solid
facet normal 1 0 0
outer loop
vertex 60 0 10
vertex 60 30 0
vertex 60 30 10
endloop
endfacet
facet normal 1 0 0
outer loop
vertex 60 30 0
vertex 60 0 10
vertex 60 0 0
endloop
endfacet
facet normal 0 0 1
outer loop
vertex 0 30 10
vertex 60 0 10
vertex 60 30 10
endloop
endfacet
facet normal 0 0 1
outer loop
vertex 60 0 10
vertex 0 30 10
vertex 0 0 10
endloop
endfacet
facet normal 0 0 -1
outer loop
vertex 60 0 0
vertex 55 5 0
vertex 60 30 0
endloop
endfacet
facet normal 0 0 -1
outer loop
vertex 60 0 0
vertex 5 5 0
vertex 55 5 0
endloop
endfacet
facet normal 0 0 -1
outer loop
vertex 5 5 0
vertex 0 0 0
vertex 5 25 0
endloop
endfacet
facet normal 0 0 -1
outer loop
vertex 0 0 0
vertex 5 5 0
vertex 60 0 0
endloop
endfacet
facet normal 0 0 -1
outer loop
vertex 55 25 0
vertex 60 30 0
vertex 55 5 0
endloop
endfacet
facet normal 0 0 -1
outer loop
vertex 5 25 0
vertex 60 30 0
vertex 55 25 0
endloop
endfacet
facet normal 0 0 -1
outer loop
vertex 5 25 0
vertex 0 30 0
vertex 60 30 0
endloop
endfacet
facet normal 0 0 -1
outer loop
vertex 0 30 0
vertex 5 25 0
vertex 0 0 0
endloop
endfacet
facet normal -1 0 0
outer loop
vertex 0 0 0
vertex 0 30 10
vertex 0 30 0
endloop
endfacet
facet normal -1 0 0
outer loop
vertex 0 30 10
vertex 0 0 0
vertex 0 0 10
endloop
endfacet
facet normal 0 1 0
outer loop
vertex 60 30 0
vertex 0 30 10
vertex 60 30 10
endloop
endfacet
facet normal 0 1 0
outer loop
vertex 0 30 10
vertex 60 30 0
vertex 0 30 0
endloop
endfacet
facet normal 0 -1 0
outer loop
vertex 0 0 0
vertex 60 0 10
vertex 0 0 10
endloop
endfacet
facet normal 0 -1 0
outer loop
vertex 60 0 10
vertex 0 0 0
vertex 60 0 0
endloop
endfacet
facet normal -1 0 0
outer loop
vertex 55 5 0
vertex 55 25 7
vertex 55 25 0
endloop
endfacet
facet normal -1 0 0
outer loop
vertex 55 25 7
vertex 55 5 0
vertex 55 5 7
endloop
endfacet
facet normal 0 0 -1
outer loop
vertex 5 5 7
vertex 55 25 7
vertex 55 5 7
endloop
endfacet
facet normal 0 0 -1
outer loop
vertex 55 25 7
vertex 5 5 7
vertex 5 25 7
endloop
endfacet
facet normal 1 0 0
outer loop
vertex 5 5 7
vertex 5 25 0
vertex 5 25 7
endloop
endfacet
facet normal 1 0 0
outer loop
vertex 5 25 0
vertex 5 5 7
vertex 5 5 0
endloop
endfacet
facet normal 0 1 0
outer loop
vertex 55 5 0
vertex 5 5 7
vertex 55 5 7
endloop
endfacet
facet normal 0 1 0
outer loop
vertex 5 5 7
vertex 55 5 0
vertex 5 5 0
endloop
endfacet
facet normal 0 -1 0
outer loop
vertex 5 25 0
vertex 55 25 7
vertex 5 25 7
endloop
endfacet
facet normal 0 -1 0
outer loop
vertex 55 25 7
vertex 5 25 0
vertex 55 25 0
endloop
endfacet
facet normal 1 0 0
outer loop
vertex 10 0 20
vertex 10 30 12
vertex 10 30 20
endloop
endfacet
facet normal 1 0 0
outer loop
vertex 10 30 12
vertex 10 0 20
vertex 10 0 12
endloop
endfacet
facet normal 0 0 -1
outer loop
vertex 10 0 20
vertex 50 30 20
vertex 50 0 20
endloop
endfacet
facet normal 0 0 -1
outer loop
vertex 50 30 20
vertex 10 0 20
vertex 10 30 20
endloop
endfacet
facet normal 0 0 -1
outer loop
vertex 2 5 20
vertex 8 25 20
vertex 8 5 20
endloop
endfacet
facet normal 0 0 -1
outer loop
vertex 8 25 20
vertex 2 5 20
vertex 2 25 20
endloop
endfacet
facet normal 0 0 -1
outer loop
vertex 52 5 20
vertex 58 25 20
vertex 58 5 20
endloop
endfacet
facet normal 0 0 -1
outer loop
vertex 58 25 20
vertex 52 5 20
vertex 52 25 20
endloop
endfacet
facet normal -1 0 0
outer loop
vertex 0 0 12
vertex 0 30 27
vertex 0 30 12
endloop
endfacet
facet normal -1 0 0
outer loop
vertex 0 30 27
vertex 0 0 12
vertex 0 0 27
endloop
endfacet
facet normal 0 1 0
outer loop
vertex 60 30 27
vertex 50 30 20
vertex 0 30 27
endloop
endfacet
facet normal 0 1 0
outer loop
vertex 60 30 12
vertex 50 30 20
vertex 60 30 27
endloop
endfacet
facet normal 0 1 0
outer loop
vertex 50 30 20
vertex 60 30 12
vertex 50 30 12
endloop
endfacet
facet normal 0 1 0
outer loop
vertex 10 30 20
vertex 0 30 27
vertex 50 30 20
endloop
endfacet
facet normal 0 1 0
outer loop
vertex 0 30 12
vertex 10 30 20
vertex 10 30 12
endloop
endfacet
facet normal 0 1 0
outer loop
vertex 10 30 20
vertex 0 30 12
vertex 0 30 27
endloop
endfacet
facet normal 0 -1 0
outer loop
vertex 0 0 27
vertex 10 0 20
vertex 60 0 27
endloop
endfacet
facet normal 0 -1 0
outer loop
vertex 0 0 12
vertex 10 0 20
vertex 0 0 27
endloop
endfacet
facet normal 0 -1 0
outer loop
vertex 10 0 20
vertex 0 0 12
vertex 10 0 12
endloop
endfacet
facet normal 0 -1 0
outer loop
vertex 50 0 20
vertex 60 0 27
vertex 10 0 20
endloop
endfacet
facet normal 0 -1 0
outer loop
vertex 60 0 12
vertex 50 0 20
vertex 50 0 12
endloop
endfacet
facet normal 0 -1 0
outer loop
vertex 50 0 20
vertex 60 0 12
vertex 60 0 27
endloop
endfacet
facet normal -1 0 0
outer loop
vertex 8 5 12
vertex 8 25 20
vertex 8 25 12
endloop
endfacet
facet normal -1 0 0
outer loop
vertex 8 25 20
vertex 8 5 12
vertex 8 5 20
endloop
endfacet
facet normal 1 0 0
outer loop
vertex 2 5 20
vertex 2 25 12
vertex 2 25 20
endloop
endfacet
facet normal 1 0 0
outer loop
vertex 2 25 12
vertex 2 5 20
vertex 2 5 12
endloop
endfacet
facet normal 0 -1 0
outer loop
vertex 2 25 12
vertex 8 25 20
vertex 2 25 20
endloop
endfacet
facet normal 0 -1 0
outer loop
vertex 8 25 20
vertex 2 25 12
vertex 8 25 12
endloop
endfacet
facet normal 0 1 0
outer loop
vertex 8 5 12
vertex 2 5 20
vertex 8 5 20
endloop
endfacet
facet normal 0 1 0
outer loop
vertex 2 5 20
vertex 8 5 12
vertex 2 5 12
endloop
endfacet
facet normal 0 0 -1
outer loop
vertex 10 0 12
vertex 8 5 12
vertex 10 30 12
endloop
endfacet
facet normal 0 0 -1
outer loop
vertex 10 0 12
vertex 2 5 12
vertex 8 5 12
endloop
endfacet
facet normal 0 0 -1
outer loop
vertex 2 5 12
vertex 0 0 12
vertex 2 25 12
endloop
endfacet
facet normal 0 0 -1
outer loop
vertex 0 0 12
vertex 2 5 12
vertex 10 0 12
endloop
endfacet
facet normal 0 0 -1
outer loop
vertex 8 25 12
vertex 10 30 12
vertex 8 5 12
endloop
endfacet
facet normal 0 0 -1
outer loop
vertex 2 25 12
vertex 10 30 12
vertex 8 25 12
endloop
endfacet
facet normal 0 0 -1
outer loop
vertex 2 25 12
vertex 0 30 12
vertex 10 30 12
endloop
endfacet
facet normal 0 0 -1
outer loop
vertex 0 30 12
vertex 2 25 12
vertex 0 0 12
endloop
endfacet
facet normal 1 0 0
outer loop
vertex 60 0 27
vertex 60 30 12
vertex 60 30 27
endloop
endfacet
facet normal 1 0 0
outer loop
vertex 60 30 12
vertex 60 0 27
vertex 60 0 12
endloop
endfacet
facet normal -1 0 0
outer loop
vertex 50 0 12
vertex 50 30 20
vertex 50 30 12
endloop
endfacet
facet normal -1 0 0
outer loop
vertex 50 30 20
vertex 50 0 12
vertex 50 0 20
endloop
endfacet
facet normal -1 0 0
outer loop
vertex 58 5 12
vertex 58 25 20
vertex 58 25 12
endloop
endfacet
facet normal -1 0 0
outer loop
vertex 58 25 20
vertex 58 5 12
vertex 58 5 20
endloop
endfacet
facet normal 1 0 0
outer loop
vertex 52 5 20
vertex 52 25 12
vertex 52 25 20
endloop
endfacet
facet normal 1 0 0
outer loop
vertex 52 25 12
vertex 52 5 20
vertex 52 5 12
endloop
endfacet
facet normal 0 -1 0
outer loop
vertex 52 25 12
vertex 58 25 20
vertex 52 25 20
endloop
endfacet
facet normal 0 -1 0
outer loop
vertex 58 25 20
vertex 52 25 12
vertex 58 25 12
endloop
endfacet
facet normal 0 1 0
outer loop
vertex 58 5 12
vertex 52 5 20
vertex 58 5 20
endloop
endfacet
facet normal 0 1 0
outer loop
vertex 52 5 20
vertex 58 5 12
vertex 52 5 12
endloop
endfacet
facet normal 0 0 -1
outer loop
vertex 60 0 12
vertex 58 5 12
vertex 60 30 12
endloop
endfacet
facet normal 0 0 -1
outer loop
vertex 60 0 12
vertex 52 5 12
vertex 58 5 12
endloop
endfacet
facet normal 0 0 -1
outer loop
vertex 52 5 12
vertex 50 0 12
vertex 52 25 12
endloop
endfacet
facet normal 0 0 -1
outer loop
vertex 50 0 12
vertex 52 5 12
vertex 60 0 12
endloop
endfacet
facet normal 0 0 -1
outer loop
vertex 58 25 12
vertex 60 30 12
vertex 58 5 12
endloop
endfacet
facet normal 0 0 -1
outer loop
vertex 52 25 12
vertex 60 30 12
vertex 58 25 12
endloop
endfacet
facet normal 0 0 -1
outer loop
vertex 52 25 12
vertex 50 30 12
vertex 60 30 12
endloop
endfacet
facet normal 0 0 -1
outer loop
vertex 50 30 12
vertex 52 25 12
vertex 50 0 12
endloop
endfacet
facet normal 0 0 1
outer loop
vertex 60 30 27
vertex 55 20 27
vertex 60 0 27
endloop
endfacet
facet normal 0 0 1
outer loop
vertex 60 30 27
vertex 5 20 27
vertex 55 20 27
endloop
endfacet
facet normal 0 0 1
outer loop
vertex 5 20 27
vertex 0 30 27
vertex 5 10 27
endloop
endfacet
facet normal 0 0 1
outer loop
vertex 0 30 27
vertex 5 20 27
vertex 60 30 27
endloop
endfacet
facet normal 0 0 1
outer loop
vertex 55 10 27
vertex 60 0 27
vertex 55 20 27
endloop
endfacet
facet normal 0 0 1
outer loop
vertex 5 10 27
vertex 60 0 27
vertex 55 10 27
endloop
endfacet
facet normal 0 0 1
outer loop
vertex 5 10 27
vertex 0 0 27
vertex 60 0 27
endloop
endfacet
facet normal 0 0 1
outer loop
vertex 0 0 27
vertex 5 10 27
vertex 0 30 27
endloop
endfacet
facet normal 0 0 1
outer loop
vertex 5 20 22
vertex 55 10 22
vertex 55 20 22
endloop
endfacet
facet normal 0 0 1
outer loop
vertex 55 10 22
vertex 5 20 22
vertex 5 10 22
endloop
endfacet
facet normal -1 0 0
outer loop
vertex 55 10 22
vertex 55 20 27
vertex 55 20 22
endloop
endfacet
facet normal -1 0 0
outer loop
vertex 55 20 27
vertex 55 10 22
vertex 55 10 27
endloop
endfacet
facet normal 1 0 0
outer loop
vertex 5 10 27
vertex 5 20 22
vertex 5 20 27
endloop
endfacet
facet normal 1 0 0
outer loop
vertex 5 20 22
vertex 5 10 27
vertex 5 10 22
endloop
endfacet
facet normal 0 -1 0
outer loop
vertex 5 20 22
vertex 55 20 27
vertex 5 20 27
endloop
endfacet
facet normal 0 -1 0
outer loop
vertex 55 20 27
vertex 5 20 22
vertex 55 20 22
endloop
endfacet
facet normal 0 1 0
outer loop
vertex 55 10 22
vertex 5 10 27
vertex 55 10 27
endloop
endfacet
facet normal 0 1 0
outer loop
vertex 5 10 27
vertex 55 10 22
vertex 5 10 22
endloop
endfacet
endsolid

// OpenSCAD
// Base Block
module base_block() {
    difference() {
        cube([60, 30, 10], center = false);
        translate([5, 5, 0])
            cube([50, 10, 7], center = false); // Deepened groove
        translate([5, 15, 0])
            cube([50, 10, 7], center = false); // Deepened groove
    }
}

// Side Clamp
module side_clamp() {
    difference() {
        cube([10, 30, 10], center = false);
        translate([2, 5, 0])
            cube([6, 20, 10], center = false);
        translate([0, 0, 0])
            cube([10, 30, 2], center = false); // Extended arms for more vertical profile
    }
}

// Top Clamp
module top_clamp() {
    difference() {
        cube([60, 30, 5], center = false);
        translate([5, 10, 0])
            cube([50, 10, 5], center = false);
    }
}

// Spacer Block
module spacer_block() {
    cube([60, 30, 2], center = false);
}

// Assembly
module assembly() {
    // Layer 4: Base Block
    base_block();

    // Layer 3: Side Clamps
    translate([0, 0, 10])
        side_clamp();
    translate([50, 0, 10])
        side_clamp();

    // Layer 2: Spacer Block
    translate([0, 0, 20])
        spacer_block();

    // Layer 1: Top Clamp
    translate([0, 0, 22])
        top_clamp();
}

// Render the assembly
assembly();
